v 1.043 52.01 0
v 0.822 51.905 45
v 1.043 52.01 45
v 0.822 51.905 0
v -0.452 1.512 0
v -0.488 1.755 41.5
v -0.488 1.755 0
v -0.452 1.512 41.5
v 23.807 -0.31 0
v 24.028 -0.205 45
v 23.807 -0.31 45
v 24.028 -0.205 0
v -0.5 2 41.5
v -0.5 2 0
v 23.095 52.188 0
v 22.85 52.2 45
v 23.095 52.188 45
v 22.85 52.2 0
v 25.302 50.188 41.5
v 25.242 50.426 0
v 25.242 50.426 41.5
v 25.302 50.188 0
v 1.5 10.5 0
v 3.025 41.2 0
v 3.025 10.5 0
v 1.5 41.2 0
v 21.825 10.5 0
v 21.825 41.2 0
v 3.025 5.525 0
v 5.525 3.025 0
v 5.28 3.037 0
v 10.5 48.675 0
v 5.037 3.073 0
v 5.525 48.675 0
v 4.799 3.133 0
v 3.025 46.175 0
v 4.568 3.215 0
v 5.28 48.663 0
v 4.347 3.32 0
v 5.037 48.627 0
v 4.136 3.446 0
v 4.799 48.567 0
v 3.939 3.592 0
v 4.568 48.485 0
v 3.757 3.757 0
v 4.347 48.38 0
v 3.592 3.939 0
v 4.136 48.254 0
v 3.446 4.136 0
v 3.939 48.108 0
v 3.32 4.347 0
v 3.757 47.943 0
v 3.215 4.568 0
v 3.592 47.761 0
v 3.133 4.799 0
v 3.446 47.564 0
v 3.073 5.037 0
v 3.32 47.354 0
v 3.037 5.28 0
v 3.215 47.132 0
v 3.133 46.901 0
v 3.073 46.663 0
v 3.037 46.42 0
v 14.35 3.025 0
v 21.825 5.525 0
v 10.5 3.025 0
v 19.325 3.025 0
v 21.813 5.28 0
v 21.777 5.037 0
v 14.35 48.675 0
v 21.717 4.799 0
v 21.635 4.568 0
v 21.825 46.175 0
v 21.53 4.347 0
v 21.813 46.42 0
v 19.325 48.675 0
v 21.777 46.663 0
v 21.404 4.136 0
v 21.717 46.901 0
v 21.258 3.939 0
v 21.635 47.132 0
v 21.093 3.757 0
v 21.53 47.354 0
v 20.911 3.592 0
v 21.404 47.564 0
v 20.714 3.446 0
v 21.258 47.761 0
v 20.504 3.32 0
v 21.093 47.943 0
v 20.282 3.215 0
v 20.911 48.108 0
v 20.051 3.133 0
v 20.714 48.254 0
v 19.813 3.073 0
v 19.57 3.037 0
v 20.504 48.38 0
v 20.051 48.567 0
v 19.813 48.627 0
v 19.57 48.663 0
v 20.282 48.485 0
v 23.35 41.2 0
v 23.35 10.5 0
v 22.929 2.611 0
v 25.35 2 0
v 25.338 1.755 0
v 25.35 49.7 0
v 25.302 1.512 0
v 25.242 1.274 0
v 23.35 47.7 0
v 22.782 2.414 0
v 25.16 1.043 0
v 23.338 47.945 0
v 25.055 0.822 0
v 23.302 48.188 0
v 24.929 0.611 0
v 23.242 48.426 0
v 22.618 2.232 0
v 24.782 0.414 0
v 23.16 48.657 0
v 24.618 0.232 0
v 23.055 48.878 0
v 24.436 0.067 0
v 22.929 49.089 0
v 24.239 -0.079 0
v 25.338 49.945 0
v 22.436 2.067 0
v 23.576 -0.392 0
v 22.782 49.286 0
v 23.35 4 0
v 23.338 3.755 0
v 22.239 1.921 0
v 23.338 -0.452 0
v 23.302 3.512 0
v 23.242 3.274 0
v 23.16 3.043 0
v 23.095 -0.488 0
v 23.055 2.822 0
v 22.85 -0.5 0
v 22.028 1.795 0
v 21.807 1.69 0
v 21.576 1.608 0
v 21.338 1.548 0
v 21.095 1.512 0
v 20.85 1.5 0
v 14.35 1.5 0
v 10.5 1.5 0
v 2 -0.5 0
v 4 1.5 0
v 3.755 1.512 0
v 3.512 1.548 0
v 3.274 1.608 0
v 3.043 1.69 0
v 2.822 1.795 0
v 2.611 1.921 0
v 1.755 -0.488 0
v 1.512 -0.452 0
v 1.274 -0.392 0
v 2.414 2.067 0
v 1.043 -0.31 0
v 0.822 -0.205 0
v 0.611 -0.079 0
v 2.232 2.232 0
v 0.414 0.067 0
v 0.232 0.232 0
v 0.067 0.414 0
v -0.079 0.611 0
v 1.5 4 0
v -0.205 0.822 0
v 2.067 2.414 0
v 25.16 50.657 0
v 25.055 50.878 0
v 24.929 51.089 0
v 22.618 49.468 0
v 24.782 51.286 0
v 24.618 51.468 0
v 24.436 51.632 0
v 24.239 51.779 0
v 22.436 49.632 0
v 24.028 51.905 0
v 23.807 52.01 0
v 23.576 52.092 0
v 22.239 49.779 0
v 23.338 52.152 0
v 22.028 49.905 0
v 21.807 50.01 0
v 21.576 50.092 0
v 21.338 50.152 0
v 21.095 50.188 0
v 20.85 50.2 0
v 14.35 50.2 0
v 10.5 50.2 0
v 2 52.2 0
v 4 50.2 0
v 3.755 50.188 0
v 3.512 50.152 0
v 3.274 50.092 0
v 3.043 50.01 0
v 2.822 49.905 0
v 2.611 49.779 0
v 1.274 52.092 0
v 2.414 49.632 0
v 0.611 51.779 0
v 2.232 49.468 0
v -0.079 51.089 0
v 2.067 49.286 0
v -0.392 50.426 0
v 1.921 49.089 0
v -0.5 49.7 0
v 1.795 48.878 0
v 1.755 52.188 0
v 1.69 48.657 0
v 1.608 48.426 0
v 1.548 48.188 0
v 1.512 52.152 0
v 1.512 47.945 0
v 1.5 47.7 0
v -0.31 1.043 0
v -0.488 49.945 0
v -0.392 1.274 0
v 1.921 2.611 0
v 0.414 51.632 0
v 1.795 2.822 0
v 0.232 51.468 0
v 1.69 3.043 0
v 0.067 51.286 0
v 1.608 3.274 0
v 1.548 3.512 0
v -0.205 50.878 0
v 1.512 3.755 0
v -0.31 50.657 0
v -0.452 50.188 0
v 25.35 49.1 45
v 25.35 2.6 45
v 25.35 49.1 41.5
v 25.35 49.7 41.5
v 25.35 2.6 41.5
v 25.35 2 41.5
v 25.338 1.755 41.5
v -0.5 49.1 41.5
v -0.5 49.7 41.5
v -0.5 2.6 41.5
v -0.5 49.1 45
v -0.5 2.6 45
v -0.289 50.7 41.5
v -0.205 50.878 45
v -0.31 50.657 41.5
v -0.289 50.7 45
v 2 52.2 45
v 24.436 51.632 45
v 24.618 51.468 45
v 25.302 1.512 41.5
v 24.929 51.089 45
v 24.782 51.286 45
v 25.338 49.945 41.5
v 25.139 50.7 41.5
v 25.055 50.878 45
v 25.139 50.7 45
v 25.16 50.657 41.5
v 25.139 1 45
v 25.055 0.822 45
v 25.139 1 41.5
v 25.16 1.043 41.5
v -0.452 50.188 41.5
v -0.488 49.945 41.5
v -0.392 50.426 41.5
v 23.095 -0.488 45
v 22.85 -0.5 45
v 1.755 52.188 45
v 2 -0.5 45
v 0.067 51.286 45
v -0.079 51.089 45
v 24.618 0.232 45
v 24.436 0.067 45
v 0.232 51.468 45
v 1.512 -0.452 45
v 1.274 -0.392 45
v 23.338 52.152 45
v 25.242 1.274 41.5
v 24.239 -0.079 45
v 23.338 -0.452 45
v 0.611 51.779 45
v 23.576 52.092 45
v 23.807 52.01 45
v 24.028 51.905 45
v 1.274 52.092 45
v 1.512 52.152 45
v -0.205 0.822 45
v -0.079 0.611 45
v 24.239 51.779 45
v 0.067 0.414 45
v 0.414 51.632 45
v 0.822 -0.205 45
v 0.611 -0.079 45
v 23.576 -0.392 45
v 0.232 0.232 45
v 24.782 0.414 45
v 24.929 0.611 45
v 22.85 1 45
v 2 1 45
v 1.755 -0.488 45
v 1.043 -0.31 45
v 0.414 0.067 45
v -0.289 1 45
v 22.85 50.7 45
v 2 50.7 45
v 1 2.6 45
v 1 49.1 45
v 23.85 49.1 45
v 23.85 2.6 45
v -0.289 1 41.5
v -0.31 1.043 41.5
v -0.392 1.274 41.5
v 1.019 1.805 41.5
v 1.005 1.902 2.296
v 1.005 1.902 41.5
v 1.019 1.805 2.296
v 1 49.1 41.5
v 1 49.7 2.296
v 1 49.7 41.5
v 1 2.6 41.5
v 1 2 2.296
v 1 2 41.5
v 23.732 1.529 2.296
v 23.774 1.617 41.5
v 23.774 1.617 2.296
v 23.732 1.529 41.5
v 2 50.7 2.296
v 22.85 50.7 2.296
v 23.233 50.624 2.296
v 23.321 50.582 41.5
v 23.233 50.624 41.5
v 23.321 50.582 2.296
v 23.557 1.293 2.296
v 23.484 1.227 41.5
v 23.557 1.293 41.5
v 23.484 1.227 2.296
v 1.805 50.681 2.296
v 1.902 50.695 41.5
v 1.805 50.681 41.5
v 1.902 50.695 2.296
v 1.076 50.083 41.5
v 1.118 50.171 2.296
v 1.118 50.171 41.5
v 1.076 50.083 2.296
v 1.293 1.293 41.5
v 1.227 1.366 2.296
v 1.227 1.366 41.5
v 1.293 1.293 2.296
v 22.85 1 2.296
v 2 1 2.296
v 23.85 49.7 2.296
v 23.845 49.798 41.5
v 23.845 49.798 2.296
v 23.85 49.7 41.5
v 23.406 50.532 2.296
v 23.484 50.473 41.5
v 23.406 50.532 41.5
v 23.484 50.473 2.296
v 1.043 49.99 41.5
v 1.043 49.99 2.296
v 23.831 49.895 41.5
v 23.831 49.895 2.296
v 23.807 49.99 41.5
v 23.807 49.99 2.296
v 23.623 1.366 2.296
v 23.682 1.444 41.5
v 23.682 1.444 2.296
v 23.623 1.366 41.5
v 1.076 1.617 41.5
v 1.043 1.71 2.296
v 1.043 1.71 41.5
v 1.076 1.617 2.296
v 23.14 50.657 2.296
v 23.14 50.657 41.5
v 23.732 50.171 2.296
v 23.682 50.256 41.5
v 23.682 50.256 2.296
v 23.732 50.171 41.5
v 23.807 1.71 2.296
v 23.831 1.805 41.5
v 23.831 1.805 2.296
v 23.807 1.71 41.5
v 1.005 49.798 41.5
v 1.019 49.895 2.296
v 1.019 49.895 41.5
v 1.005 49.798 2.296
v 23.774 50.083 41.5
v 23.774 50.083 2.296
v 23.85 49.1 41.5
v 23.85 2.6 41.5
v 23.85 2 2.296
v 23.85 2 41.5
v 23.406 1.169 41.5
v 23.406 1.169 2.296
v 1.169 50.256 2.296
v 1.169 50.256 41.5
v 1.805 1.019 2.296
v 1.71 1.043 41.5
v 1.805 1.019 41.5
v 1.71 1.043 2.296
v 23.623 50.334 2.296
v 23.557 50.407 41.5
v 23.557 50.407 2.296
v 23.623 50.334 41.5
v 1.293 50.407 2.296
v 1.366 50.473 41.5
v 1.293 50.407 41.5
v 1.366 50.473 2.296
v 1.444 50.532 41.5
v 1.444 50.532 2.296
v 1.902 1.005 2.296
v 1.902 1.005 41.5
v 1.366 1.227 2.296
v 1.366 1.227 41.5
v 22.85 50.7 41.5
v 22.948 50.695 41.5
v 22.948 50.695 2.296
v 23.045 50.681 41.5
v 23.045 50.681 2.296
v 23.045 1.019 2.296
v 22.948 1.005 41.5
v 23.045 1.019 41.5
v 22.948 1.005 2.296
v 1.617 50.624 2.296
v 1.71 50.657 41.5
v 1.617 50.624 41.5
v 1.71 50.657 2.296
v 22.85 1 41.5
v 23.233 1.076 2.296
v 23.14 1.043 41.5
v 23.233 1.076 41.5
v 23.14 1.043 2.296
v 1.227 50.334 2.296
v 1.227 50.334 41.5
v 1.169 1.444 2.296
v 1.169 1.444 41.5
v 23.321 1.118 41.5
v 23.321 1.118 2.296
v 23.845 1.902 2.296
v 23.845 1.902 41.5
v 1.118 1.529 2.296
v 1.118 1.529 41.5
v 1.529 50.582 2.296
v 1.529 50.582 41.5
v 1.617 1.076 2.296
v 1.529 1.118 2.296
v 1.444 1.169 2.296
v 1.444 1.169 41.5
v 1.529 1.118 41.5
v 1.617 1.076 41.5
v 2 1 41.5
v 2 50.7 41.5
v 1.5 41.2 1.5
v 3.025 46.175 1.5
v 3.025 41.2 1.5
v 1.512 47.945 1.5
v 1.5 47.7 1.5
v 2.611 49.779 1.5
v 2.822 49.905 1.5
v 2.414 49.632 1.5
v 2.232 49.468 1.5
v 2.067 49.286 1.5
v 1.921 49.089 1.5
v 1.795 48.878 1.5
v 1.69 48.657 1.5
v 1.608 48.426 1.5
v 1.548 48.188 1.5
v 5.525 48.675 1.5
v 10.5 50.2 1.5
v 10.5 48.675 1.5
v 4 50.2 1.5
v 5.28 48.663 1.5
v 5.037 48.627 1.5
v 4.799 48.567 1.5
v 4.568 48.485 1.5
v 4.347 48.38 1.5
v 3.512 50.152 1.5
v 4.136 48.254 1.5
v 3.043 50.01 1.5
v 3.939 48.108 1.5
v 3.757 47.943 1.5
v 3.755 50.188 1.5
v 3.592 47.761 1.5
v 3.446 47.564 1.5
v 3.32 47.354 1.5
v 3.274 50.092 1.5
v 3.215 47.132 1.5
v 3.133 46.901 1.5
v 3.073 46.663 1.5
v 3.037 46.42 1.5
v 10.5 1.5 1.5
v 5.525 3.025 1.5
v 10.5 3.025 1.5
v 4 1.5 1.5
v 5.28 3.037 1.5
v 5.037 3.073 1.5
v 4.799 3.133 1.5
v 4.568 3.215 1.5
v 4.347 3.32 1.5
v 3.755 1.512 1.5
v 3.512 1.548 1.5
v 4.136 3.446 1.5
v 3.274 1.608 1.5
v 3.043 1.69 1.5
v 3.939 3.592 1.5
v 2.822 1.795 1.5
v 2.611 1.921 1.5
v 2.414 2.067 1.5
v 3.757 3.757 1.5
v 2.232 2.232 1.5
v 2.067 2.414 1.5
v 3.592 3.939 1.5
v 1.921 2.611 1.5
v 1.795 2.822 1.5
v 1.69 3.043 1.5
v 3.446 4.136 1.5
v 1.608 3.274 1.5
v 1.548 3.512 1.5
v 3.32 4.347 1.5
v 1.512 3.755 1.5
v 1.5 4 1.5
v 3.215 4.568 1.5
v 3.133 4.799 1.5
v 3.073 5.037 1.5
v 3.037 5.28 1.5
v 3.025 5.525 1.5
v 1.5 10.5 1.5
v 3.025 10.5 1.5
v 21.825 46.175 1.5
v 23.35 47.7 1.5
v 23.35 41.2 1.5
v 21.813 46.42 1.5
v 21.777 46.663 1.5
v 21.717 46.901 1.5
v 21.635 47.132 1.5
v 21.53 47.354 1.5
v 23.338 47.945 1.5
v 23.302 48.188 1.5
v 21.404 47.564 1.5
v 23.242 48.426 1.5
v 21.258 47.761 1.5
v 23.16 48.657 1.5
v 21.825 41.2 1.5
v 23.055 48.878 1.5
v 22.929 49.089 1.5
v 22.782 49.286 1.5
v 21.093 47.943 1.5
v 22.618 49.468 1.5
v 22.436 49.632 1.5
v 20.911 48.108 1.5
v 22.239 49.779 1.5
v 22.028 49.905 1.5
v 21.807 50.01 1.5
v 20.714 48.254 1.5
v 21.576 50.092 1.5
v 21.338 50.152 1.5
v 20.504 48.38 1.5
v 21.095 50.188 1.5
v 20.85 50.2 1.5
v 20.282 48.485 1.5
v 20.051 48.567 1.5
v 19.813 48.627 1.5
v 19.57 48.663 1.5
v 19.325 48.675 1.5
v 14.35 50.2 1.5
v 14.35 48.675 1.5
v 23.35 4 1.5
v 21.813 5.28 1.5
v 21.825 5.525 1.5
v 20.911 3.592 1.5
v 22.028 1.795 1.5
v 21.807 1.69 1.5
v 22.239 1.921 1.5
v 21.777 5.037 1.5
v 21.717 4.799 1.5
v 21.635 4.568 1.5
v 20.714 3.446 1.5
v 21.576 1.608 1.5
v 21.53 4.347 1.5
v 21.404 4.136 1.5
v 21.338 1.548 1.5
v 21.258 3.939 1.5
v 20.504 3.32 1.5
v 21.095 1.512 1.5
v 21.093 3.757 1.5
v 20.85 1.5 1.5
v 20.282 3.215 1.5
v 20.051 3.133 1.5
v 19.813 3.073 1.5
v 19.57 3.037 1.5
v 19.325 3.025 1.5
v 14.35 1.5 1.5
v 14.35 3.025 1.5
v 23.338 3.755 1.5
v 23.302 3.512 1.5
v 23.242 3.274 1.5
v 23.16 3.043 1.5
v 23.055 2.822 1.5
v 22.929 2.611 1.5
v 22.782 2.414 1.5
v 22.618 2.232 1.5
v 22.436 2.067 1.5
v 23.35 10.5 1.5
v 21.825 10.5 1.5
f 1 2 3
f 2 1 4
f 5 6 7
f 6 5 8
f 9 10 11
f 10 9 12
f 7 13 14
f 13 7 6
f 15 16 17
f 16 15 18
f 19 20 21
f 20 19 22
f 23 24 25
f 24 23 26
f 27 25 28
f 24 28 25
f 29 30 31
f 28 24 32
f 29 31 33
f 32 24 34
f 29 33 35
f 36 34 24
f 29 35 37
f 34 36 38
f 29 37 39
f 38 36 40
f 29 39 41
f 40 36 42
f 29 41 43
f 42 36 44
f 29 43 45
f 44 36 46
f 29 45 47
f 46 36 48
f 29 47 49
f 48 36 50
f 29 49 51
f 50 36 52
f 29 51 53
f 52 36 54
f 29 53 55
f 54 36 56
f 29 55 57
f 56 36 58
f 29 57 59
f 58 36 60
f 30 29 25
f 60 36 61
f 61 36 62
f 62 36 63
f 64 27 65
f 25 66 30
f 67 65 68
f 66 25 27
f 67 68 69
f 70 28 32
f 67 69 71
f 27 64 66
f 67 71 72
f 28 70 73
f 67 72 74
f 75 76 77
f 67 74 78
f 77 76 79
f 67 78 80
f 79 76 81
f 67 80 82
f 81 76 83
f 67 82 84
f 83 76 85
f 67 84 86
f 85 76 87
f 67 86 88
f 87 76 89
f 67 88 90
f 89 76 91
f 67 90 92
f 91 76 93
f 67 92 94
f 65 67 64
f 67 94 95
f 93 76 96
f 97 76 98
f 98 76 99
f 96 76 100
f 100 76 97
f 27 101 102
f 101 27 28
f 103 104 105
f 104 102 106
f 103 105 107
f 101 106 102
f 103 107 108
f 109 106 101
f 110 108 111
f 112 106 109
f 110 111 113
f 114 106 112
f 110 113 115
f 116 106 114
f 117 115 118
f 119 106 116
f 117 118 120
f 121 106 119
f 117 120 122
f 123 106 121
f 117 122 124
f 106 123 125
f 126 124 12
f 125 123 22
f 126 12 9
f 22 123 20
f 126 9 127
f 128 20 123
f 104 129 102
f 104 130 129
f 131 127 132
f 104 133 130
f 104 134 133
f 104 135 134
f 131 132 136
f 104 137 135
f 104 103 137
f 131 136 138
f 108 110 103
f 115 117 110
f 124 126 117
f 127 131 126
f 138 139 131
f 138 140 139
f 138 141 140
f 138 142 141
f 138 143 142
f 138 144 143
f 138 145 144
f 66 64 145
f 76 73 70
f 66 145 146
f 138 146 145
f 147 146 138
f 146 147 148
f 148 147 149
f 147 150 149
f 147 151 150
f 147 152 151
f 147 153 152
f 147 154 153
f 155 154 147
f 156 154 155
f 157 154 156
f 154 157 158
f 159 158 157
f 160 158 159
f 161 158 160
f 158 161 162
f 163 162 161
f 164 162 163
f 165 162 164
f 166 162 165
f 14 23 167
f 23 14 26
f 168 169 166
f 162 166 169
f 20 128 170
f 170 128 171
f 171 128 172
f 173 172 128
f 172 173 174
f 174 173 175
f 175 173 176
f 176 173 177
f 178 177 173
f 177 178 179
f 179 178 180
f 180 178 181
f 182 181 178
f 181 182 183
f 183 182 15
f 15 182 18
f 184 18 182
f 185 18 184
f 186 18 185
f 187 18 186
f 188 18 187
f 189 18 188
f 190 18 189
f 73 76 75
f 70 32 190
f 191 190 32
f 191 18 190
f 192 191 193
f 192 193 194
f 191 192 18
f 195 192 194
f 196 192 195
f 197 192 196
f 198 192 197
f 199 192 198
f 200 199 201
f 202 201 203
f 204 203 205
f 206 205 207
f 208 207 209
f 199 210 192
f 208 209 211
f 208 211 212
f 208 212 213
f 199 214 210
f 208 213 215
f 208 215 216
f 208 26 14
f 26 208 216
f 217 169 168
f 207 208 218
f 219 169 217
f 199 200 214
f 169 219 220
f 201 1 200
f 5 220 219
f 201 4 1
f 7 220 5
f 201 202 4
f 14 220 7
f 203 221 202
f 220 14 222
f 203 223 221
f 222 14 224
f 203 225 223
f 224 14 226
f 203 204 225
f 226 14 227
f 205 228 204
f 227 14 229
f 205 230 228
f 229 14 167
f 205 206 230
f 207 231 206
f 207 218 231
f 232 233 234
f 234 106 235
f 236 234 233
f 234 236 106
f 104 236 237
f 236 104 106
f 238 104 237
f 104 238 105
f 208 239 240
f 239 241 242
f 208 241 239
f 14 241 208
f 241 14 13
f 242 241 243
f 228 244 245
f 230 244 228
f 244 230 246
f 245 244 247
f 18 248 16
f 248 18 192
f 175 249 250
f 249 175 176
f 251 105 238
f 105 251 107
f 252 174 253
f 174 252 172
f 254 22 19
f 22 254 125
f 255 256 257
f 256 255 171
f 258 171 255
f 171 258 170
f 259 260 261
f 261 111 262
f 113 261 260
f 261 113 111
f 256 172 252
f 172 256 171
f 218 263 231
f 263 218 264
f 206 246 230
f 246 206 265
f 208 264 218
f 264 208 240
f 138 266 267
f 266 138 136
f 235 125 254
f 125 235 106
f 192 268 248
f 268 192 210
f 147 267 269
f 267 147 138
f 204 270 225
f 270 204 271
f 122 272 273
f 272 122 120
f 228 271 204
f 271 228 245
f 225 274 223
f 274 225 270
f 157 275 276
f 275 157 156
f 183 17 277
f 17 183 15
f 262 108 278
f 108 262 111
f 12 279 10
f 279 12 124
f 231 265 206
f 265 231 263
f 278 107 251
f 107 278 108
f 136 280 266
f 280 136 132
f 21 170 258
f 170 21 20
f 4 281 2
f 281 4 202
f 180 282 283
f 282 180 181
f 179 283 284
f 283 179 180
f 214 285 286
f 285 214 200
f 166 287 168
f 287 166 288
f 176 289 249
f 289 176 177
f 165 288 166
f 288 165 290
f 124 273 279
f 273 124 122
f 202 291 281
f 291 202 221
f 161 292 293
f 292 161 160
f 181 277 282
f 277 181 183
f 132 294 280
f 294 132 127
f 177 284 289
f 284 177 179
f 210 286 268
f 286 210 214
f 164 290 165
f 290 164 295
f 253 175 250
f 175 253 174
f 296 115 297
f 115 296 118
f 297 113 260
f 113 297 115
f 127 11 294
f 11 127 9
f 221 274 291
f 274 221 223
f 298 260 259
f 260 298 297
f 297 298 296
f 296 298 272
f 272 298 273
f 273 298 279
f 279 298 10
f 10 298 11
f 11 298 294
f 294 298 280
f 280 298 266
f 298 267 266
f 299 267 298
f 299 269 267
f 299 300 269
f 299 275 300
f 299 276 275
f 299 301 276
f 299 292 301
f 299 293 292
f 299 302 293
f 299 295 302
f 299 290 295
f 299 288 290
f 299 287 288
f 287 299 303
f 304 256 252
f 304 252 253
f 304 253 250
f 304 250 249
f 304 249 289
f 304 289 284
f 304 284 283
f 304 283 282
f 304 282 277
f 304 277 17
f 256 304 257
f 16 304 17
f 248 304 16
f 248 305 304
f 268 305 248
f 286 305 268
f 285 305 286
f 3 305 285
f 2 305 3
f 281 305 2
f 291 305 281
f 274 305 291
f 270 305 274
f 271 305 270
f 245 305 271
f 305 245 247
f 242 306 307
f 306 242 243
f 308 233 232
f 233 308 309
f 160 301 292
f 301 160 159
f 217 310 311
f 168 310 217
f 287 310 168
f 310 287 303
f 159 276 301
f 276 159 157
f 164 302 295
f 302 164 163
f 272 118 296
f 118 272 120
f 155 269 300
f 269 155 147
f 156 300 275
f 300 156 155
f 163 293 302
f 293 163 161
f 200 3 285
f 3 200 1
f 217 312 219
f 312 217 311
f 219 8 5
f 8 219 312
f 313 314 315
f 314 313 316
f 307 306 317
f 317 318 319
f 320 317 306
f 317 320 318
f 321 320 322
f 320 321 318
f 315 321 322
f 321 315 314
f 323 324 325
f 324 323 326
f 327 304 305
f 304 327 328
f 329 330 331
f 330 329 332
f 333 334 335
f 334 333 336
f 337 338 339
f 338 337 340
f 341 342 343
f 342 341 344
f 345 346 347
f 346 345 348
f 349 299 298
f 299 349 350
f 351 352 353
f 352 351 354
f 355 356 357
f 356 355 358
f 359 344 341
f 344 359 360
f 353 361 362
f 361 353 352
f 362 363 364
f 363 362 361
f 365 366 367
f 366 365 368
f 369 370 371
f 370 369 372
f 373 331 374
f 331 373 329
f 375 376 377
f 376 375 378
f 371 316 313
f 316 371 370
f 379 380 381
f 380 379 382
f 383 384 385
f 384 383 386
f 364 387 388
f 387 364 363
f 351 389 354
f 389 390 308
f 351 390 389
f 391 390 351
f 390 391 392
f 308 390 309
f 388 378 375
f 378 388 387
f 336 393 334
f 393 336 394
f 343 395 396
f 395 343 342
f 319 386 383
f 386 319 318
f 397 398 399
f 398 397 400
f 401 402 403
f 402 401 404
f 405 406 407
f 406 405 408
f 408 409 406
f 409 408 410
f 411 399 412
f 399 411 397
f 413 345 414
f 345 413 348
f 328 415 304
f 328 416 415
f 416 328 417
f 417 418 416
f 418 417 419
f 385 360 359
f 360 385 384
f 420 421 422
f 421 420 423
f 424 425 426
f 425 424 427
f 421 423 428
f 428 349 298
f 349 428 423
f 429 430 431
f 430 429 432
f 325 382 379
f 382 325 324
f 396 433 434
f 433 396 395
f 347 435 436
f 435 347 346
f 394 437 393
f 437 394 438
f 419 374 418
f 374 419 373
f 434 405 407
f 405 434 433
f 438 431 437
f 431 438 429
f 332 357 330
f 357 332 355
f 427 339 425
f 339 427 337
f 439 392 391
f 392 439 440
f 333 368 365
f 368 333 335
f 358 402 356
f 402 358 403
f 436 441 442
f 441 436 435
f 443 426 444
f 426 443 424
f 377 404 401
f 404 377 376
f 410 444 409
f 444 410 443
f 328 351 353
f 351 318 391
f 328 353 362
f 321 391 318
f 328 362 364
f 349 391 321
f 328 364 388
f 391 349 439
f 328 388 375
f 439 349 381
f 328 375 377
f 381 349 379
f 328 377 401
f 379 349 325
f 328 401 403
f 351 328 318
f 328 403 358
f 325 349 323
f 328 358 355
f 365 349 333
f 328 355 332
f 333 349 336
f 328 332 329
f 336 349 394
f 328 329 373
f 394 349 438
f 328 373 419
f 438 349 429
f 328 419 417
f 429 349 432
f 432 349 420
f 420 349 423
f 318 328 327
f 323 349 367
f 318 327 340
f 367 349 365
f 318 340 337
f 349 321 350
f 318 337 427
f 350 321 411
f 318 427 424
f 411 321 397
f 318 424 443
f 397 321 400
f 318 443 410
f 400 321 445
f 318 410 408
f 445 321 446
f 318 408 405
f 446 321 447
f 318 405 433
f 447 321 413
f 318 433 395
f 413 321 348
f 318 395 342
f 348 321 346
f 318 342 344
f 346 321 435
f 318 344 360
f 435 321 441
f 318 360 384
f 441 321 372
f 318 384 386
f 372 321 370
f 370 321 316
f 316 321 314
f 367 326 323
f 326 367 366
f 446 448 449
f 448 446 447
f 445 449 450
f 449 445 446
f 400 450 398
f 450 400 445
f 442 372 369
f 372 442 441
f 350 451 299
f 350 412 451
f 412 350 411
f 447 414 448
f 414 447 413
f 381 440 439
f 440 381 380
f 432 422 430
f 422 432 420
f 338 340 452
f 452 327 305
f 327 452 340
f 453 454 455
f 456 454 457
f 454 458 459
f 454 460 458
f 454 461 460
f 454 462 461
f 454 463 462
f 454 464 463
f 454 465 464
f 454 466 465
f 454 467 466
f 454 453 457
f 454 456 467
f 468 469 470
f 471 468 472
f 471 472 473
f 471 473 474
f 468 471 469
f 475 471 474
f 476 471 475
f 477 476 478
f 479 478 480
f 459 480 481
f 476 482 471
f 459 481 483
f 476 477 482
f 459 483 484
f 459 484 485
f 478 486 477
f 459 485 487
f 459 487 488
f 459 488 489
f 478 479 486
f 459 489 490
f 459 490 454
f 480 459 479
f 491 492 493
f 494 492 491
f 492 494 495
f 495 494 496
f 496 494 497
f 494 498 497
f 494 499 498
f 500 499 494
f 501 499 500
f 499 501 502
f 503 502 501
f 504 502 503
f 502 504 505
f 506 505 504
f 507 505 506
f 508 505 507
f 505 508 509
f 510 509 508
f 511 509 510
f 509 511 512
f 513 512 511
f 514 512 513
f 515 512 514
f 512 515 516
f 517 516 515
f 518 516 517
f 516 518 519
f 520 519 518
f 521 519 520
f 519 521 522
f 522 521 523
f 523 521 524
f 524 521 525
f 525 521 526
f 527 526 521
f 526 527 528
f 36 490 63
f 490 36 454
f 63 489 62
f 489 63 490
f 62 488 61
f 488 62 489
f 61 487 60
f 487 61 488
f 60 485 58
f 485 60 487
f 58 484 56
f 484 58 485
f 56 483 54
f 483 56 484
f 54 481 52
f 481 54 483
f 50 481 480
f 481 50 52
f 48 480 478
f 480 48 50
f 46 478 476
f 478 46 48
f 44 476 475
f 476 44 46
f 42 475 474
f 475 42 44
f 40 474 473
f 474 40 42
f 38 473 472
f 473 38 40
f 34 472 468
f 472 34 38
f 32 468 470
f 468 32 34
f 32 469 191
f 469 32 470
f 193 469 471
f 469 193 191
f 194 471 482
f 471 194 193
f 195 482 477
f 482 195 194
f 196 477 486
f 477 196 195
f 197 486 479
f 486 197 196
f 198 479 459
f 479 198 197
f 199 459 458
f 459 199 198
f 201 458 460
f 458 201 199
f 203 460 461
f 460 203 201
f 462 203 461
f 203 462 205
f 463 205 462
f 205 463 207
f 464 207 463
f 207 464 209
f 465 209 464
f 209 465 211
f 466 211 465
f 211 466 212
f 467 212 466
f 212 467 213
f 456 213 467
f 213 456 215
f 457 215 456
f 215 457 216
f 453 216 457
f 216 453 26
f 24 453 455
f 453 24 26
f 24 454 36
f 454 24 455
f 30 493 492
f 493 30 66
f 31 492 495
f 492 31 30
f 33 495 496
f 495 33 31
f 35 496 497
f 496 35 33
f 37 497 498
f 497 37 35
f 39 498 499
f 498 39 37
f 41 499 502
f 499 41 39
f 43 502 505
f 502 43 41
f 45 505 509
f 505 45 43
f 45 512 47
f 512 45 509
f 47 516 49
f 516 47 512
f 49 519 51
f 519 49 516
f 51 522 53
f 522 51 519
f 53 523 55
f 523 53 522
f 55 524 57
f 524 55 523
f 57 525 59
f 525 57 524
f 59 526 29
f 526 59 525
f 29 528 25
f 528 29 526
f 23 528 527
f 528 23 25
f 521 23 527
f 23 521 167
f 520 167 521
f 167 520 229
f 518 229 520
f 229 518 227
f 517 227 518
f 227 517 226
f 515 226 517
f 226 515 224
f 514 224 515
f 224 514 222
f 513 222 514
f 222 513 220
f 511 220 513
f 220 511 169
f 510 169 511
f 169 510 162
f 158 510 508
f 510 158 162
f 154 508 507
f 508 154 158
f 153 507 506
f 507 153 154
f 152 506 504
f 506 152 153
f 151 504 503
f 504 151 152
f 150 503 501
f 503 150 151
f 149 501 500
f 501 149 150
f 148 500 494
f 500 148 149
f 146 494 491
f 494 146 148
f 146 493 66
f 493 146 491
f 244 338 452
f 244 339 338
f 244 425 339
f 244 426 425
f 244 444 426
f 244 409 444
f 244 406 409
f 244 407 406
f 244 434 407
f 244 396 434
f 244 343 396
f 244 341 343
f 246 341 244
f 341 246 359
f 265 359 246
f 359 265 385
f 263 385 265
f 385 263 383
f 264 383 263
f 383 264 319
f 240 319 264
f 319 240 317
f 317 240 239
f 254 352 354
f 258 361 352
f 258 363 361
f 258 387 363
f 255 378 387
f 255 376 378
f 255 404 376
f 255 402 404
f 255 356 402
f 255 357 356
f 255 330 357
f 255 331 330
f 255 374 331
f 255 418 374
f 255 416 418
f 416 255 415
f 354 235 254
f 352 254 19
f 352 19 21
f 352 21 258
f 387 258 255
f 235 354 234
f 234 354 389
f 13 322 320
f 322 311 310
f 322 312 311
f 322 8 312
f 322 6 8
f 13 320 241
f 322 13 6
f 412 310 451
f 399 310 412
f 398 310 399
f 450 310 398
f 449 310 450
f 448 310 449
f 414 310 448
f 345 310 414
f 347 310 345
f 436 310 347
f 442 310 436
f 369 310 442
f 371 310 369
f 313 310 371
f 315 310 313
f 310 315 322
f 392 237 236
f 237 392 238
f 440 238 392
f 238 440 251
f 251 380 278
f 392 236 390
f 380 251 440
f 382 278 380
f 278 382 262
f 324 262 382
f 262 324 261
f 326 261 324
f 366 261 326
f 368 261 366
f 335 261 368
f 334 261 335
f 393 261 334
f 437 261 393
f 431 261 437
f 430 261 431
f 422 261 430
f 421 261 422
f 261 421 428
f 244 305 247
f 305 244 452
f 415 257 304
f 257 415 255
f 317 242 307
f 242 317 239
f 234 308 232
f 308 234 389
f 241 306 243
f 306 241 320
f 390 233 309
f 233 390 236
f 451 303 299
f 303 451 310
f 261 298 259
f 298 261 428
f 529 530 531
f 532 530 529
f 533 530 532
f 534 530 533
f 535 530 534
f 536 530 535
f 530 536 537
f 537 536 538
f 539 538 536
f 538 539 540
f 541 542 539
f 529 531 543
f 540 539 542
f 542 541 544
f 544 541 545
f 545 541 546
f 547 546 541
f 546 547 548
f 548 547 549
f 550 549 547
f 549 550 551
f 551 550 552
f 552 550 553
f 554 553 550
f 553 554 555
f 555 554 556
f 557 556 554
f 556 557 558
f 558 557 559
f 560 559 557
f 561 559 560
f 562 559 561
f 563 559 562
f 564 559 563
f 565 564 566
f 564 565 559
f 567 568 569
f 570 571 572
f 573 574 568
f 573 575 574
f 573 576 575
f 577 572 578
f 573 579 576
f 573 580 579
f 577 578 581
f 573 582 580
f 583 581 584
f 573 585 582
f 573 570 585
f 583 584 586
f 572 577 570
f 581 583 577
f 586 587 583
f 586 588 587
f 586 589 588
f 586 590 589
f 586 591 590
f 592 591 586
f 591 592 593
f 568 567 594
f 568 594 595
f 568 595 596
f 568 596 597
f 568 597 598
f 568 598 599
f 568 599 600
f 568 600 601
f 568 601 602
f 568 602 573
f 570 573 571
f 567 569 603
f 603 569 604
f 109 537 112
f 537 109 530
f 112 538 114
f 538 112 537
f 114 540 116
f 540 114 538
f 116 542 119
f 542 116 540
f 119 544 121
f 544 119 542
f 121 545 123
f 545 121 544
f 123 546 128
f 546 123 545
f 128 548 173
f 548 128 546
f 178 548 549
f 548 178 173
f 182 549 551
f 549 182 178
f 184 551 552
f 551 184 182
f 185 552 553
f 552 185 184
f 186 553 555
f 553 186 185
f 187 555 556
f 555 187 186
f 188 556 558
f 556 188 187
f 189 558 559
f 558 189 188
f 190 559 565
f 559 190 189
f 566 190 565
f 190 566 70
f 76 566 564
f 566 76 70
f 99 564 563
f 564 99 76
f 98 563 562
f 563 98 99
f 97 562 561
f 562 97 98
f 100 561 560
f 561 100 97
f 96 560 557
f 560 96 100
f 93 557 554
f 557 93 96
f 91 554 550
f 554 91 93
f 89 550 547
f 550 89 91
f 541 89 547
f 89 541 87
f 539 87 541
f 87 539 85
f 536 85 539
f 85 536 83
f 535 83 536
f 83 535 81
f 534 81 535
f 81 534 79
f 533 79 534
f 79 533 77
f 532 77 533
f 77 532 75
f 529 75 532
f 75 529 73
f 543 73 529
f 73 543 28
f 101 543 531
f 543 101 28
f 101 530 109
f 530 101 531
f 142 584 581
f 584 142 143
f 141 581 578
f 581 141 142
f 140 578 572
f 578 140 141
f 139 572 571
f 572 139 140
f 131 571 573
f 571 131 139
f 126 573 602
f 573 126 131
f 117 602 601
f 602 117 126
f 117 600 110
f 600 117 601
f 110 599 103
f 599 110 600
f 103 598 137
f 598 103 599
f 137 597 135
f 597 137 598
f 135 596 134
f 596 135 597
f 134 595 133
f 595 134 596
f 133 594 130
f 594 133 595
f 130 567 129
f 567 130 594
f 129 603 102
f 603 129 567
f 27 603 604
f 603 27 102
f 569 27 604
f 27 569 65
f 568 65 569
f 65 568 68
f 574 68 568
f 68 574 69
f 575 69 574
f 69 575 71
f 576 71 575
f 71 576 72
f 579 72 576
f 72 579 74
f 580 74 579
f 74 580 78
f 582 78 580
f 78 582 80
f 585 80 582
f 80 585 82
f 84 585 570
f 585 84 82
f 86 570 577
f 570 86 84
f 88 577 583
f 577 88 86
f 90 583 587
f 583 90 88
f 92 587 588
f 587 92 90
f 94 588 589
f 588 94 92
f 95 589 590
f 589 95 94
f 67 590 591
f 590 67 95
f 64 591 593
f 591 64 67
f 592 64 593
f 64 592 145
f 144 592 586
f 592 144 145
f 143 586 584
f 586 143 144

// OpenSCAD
module Container_num_x_0_5_num_y_1(){
  difference(){
    translate([12.425, 25.85, 0])color("red")difference(){
          translate([-12.925, -26.35, 0])color("purple")union()linear_extrude(height=45)translate([2.5, 2.5, 0])hull(){
                      circle(d=5,$fn=64);
                      translate([20.85, 0, 0])circle(d=5,$fn=64);
                      translate([0, 47.7, 0])circle(d=5,$fn=64);
                      translate([20.85, 47.7, 0])circle(d=5,$fn=64);
                    }

          translate([-11.425, -24.85, 2.296])union()linear_extrude(height=45.008)translate([1, 1, 0])hull(){
                    circle(d=2,$fn=64);
                    translate([20.85, 0, 0])circle(d=2,$fn=64);
                    translate([0, 47.7, 0])circle(d=2,$fn=64);
                    translate([20.85, 47.7, 0])circle(d=2,$fn=64);
                  }

        }

    union(){
      translate([25.85, 25.85, 0])union(){
          translate([0, 0, -1])%linear_extrude(height=1)union(){
                translate([-25.85, -25.85, 0])square([51.7, 51.7]);
                translate([-25.85, -25.85, 0])square([51.7, 51.7]);
              }

          translate([0, 0, 45.002])%linear_extrude(height=1.004)union(){
                translate([-25.85, -25.85, 0])square([51.7, 51.7]);
                translate([-25.85, -25.85, 0])square([51.7, 51.7]);
              }

          color("red")linear_extrude(height=1.5)union(){
                difference(){
                  translate([-24.35, -24.35, 0])union()translate([2.5, 2.5, 0])hull(){
                          circle(d=5,$fn=64);
                          translate([43.7, 0, 0])circle(d=5,$fn=64);
                          translate([0, 43.7, 0])circle(d=5,$fn=64);
                          translate([43.7, 43.7, 0])circle(d=5,$fn=64);
                        }

                  translate([-22.825, -22.825, 0])union()translate([2.5, 2.5, 0])hull(){
                          circle(d=5,$fn=64);
                          translate([40.65, 0, 0])circle(d=5,$fn=64);
                          translate([0, 40.65, 0])circle(d=5,$fn=64);
                          translate([40.65, 40.65, 0])circle(d=5,$fn=64);
                        }

                  translate([-15.35, -25.85, 0])square([30.700000000000003, 51.7]);
                  translate([-25.85, -15.35, 0])square([51.7, 30.700000000000003]);
                }

                difference(){
                  translate([-24.35, -24.35, 0])union()translate([2.5, 2.5, 0])hull(){
                          circle(d=5,$fn=64);
                          translate([43.7, 0, 0])circle(d=5,$fn=64);
                          translate([0, 43.7, 0])circle(d=5,$fn=64);
                          translate([43.7, 43.7, 0])circle(d=5,$fn=64);
                        }

                  translate([-22.825, -22.825, 0])union()translate([2.5, 2.5, 0])hull(){
                          circle(d=5,$fn=64);
                          translate([40.65, 0, 0])circle(d=5,$fn=64);
                          translate([0, 40.65, 0])circle(d=5,$fn=64);
                          translate([40.65, 40.65, 0])circle(d=5,$fn=64);
                        }

                  translate([-15.35, -25.85, 0])square([30.700000000000003, 51.7]);
                  translate([-25.85, -15.35, 0])square([51.7, 30.700000000000003]);
                }

              }

          translate([0, 0, 41.5])color("blue")linear_extrude(height=3.5)union(){
                  translate([-21.6, 23.25, 0])square([43.2, 1.6]);
                  translate([-21.6, -24.85, 0])square([43.2, 1.6]);
                  translate([23.25, -21.6, 0])square([1.6, 43.2]);
                  translate([-24.85, -21.6, 0])square([1.6, 43.2]);
                  union(){
                    translate([-21.6, 23.25, 0])square([43.2, 1.6]);
                    translate([-21.6, -24.85, 0])square([43.2, 1.6]);
                    translate([23.25, -21.6, 0])square([1.6, 43.2]);
                    translate([-24.85, -21.6, 0])square([1.6, 43.2]);
                  }

                }

        }

      translate([-1, 25.85, 0])union(){
          translate([0, 0, -1])%linear_extrude(height=1)union(){
                translate([-25.85, -25.85, 0])square([51.7, 51.7]);
                translate([-25.85, -25.85, 0])square([51.7, 51.7]);
              }

          translate([0, 0, 45.002])%linear_extrude(height=1.004)union(){
                translate([-25.85, -25.85, 0])square([51.7, 51.7]);
                translate([-25.85, -25.85, 0])square([51.7, 51.7]);
              }

          color("red")linear_extrude(height=1.5)union(){
                difference(){
                  translate([-24.35, -24.35, 0])union()translate([2.5, 2.5, 0])hull(){
                          circle(d=5,$fn=64);
                          translate([43.7, 0, 0])circle(d=5,$fn=64);
                          translate([0, 43.7, 0])circle(d=5,$fn=64);
                          translate([43.7, 43.7, 0])circle(d=5,$fn=64);
                        }

                  translate([-22.825, -22.825, 0])union()translate([2.5, 2.5, 0])hull(){
                          circle(d=5,$fn=64);
                          translate([40.65, 0, 0])circle(d=5,$fn=64);
                          translate([0, 40.65, 0])circle(d=5,$fn=64);
                          translate([40.65, 40.65, 0])circle(d=5,$fn=64);
                        }

                  translate([-15.35, -25.85, 0])square([30.700000000000003, 51.7]);
                  translate([-25.85, -15.35, 0])square([51.7, 30.700000000000003]);
                }

                difference(){
                  translate([-24.35, -24.35, 0])union()translate([2.5, 2.5, 0])hull(){
                          circle(d=5,$fn=64);
                          translate([43.7, 0, 0])circle(d=5,$fn=64);
                          translate([0, 43.7, 0])circle(d=5,$fn=64);
                          translate([43.7, 43.7, 0])circle(d=5,$fn=64);
                        }

                  translate([-22.825, -22.825, 0])union()translate([2.5, 2.5, 0])hull(){
                          circle(d=5,$fn=64);
                          translate([40.65, 0, 0])circle(d=5,$fn=64);
                          translate([0, 40.65, 0])circle(d=5,$fn=64);
                          translate([40.65, 40.65, 0])circle(d=5,$fn=64);
                        }

                  translate([-15.35, -25.85, 0])square([30.700000000000003, 51.7]);
                  translate([-25.85, -15.35, 0])square([51.7, 30.700000000000003]);
                }

              }

          translate([0, 0, 41.5])color("blue")linear_extrude(height=3.5)union(){
                  translate([-21.6, 23.25, 0])square([43.2, 1.6]);
                  translate([-21.6, -24.85, 0])square([43.2, 1.6]);
                  translate([23.25, -21.6, 0])square([1.6, 43.2]);
                  translate([-24.85, -21.6, 0])square([1.6, 43.2]);
                  union(){
                    translate([-21.6, 23.25, 0])square([43.2, 1.6]);
                    translate([-21.6, -24.85, 0])square([43.2, 1.6]);
                    translate([23.25, -21.6, 0])square([1.6, 43.2]);
                    translate([-24.85, -21.6, 0])square([1.6, 43.2]);
                  }

                }

        }

    }

  }
}
$fn=64;
Container_num_x_0_5_num_y_1();
